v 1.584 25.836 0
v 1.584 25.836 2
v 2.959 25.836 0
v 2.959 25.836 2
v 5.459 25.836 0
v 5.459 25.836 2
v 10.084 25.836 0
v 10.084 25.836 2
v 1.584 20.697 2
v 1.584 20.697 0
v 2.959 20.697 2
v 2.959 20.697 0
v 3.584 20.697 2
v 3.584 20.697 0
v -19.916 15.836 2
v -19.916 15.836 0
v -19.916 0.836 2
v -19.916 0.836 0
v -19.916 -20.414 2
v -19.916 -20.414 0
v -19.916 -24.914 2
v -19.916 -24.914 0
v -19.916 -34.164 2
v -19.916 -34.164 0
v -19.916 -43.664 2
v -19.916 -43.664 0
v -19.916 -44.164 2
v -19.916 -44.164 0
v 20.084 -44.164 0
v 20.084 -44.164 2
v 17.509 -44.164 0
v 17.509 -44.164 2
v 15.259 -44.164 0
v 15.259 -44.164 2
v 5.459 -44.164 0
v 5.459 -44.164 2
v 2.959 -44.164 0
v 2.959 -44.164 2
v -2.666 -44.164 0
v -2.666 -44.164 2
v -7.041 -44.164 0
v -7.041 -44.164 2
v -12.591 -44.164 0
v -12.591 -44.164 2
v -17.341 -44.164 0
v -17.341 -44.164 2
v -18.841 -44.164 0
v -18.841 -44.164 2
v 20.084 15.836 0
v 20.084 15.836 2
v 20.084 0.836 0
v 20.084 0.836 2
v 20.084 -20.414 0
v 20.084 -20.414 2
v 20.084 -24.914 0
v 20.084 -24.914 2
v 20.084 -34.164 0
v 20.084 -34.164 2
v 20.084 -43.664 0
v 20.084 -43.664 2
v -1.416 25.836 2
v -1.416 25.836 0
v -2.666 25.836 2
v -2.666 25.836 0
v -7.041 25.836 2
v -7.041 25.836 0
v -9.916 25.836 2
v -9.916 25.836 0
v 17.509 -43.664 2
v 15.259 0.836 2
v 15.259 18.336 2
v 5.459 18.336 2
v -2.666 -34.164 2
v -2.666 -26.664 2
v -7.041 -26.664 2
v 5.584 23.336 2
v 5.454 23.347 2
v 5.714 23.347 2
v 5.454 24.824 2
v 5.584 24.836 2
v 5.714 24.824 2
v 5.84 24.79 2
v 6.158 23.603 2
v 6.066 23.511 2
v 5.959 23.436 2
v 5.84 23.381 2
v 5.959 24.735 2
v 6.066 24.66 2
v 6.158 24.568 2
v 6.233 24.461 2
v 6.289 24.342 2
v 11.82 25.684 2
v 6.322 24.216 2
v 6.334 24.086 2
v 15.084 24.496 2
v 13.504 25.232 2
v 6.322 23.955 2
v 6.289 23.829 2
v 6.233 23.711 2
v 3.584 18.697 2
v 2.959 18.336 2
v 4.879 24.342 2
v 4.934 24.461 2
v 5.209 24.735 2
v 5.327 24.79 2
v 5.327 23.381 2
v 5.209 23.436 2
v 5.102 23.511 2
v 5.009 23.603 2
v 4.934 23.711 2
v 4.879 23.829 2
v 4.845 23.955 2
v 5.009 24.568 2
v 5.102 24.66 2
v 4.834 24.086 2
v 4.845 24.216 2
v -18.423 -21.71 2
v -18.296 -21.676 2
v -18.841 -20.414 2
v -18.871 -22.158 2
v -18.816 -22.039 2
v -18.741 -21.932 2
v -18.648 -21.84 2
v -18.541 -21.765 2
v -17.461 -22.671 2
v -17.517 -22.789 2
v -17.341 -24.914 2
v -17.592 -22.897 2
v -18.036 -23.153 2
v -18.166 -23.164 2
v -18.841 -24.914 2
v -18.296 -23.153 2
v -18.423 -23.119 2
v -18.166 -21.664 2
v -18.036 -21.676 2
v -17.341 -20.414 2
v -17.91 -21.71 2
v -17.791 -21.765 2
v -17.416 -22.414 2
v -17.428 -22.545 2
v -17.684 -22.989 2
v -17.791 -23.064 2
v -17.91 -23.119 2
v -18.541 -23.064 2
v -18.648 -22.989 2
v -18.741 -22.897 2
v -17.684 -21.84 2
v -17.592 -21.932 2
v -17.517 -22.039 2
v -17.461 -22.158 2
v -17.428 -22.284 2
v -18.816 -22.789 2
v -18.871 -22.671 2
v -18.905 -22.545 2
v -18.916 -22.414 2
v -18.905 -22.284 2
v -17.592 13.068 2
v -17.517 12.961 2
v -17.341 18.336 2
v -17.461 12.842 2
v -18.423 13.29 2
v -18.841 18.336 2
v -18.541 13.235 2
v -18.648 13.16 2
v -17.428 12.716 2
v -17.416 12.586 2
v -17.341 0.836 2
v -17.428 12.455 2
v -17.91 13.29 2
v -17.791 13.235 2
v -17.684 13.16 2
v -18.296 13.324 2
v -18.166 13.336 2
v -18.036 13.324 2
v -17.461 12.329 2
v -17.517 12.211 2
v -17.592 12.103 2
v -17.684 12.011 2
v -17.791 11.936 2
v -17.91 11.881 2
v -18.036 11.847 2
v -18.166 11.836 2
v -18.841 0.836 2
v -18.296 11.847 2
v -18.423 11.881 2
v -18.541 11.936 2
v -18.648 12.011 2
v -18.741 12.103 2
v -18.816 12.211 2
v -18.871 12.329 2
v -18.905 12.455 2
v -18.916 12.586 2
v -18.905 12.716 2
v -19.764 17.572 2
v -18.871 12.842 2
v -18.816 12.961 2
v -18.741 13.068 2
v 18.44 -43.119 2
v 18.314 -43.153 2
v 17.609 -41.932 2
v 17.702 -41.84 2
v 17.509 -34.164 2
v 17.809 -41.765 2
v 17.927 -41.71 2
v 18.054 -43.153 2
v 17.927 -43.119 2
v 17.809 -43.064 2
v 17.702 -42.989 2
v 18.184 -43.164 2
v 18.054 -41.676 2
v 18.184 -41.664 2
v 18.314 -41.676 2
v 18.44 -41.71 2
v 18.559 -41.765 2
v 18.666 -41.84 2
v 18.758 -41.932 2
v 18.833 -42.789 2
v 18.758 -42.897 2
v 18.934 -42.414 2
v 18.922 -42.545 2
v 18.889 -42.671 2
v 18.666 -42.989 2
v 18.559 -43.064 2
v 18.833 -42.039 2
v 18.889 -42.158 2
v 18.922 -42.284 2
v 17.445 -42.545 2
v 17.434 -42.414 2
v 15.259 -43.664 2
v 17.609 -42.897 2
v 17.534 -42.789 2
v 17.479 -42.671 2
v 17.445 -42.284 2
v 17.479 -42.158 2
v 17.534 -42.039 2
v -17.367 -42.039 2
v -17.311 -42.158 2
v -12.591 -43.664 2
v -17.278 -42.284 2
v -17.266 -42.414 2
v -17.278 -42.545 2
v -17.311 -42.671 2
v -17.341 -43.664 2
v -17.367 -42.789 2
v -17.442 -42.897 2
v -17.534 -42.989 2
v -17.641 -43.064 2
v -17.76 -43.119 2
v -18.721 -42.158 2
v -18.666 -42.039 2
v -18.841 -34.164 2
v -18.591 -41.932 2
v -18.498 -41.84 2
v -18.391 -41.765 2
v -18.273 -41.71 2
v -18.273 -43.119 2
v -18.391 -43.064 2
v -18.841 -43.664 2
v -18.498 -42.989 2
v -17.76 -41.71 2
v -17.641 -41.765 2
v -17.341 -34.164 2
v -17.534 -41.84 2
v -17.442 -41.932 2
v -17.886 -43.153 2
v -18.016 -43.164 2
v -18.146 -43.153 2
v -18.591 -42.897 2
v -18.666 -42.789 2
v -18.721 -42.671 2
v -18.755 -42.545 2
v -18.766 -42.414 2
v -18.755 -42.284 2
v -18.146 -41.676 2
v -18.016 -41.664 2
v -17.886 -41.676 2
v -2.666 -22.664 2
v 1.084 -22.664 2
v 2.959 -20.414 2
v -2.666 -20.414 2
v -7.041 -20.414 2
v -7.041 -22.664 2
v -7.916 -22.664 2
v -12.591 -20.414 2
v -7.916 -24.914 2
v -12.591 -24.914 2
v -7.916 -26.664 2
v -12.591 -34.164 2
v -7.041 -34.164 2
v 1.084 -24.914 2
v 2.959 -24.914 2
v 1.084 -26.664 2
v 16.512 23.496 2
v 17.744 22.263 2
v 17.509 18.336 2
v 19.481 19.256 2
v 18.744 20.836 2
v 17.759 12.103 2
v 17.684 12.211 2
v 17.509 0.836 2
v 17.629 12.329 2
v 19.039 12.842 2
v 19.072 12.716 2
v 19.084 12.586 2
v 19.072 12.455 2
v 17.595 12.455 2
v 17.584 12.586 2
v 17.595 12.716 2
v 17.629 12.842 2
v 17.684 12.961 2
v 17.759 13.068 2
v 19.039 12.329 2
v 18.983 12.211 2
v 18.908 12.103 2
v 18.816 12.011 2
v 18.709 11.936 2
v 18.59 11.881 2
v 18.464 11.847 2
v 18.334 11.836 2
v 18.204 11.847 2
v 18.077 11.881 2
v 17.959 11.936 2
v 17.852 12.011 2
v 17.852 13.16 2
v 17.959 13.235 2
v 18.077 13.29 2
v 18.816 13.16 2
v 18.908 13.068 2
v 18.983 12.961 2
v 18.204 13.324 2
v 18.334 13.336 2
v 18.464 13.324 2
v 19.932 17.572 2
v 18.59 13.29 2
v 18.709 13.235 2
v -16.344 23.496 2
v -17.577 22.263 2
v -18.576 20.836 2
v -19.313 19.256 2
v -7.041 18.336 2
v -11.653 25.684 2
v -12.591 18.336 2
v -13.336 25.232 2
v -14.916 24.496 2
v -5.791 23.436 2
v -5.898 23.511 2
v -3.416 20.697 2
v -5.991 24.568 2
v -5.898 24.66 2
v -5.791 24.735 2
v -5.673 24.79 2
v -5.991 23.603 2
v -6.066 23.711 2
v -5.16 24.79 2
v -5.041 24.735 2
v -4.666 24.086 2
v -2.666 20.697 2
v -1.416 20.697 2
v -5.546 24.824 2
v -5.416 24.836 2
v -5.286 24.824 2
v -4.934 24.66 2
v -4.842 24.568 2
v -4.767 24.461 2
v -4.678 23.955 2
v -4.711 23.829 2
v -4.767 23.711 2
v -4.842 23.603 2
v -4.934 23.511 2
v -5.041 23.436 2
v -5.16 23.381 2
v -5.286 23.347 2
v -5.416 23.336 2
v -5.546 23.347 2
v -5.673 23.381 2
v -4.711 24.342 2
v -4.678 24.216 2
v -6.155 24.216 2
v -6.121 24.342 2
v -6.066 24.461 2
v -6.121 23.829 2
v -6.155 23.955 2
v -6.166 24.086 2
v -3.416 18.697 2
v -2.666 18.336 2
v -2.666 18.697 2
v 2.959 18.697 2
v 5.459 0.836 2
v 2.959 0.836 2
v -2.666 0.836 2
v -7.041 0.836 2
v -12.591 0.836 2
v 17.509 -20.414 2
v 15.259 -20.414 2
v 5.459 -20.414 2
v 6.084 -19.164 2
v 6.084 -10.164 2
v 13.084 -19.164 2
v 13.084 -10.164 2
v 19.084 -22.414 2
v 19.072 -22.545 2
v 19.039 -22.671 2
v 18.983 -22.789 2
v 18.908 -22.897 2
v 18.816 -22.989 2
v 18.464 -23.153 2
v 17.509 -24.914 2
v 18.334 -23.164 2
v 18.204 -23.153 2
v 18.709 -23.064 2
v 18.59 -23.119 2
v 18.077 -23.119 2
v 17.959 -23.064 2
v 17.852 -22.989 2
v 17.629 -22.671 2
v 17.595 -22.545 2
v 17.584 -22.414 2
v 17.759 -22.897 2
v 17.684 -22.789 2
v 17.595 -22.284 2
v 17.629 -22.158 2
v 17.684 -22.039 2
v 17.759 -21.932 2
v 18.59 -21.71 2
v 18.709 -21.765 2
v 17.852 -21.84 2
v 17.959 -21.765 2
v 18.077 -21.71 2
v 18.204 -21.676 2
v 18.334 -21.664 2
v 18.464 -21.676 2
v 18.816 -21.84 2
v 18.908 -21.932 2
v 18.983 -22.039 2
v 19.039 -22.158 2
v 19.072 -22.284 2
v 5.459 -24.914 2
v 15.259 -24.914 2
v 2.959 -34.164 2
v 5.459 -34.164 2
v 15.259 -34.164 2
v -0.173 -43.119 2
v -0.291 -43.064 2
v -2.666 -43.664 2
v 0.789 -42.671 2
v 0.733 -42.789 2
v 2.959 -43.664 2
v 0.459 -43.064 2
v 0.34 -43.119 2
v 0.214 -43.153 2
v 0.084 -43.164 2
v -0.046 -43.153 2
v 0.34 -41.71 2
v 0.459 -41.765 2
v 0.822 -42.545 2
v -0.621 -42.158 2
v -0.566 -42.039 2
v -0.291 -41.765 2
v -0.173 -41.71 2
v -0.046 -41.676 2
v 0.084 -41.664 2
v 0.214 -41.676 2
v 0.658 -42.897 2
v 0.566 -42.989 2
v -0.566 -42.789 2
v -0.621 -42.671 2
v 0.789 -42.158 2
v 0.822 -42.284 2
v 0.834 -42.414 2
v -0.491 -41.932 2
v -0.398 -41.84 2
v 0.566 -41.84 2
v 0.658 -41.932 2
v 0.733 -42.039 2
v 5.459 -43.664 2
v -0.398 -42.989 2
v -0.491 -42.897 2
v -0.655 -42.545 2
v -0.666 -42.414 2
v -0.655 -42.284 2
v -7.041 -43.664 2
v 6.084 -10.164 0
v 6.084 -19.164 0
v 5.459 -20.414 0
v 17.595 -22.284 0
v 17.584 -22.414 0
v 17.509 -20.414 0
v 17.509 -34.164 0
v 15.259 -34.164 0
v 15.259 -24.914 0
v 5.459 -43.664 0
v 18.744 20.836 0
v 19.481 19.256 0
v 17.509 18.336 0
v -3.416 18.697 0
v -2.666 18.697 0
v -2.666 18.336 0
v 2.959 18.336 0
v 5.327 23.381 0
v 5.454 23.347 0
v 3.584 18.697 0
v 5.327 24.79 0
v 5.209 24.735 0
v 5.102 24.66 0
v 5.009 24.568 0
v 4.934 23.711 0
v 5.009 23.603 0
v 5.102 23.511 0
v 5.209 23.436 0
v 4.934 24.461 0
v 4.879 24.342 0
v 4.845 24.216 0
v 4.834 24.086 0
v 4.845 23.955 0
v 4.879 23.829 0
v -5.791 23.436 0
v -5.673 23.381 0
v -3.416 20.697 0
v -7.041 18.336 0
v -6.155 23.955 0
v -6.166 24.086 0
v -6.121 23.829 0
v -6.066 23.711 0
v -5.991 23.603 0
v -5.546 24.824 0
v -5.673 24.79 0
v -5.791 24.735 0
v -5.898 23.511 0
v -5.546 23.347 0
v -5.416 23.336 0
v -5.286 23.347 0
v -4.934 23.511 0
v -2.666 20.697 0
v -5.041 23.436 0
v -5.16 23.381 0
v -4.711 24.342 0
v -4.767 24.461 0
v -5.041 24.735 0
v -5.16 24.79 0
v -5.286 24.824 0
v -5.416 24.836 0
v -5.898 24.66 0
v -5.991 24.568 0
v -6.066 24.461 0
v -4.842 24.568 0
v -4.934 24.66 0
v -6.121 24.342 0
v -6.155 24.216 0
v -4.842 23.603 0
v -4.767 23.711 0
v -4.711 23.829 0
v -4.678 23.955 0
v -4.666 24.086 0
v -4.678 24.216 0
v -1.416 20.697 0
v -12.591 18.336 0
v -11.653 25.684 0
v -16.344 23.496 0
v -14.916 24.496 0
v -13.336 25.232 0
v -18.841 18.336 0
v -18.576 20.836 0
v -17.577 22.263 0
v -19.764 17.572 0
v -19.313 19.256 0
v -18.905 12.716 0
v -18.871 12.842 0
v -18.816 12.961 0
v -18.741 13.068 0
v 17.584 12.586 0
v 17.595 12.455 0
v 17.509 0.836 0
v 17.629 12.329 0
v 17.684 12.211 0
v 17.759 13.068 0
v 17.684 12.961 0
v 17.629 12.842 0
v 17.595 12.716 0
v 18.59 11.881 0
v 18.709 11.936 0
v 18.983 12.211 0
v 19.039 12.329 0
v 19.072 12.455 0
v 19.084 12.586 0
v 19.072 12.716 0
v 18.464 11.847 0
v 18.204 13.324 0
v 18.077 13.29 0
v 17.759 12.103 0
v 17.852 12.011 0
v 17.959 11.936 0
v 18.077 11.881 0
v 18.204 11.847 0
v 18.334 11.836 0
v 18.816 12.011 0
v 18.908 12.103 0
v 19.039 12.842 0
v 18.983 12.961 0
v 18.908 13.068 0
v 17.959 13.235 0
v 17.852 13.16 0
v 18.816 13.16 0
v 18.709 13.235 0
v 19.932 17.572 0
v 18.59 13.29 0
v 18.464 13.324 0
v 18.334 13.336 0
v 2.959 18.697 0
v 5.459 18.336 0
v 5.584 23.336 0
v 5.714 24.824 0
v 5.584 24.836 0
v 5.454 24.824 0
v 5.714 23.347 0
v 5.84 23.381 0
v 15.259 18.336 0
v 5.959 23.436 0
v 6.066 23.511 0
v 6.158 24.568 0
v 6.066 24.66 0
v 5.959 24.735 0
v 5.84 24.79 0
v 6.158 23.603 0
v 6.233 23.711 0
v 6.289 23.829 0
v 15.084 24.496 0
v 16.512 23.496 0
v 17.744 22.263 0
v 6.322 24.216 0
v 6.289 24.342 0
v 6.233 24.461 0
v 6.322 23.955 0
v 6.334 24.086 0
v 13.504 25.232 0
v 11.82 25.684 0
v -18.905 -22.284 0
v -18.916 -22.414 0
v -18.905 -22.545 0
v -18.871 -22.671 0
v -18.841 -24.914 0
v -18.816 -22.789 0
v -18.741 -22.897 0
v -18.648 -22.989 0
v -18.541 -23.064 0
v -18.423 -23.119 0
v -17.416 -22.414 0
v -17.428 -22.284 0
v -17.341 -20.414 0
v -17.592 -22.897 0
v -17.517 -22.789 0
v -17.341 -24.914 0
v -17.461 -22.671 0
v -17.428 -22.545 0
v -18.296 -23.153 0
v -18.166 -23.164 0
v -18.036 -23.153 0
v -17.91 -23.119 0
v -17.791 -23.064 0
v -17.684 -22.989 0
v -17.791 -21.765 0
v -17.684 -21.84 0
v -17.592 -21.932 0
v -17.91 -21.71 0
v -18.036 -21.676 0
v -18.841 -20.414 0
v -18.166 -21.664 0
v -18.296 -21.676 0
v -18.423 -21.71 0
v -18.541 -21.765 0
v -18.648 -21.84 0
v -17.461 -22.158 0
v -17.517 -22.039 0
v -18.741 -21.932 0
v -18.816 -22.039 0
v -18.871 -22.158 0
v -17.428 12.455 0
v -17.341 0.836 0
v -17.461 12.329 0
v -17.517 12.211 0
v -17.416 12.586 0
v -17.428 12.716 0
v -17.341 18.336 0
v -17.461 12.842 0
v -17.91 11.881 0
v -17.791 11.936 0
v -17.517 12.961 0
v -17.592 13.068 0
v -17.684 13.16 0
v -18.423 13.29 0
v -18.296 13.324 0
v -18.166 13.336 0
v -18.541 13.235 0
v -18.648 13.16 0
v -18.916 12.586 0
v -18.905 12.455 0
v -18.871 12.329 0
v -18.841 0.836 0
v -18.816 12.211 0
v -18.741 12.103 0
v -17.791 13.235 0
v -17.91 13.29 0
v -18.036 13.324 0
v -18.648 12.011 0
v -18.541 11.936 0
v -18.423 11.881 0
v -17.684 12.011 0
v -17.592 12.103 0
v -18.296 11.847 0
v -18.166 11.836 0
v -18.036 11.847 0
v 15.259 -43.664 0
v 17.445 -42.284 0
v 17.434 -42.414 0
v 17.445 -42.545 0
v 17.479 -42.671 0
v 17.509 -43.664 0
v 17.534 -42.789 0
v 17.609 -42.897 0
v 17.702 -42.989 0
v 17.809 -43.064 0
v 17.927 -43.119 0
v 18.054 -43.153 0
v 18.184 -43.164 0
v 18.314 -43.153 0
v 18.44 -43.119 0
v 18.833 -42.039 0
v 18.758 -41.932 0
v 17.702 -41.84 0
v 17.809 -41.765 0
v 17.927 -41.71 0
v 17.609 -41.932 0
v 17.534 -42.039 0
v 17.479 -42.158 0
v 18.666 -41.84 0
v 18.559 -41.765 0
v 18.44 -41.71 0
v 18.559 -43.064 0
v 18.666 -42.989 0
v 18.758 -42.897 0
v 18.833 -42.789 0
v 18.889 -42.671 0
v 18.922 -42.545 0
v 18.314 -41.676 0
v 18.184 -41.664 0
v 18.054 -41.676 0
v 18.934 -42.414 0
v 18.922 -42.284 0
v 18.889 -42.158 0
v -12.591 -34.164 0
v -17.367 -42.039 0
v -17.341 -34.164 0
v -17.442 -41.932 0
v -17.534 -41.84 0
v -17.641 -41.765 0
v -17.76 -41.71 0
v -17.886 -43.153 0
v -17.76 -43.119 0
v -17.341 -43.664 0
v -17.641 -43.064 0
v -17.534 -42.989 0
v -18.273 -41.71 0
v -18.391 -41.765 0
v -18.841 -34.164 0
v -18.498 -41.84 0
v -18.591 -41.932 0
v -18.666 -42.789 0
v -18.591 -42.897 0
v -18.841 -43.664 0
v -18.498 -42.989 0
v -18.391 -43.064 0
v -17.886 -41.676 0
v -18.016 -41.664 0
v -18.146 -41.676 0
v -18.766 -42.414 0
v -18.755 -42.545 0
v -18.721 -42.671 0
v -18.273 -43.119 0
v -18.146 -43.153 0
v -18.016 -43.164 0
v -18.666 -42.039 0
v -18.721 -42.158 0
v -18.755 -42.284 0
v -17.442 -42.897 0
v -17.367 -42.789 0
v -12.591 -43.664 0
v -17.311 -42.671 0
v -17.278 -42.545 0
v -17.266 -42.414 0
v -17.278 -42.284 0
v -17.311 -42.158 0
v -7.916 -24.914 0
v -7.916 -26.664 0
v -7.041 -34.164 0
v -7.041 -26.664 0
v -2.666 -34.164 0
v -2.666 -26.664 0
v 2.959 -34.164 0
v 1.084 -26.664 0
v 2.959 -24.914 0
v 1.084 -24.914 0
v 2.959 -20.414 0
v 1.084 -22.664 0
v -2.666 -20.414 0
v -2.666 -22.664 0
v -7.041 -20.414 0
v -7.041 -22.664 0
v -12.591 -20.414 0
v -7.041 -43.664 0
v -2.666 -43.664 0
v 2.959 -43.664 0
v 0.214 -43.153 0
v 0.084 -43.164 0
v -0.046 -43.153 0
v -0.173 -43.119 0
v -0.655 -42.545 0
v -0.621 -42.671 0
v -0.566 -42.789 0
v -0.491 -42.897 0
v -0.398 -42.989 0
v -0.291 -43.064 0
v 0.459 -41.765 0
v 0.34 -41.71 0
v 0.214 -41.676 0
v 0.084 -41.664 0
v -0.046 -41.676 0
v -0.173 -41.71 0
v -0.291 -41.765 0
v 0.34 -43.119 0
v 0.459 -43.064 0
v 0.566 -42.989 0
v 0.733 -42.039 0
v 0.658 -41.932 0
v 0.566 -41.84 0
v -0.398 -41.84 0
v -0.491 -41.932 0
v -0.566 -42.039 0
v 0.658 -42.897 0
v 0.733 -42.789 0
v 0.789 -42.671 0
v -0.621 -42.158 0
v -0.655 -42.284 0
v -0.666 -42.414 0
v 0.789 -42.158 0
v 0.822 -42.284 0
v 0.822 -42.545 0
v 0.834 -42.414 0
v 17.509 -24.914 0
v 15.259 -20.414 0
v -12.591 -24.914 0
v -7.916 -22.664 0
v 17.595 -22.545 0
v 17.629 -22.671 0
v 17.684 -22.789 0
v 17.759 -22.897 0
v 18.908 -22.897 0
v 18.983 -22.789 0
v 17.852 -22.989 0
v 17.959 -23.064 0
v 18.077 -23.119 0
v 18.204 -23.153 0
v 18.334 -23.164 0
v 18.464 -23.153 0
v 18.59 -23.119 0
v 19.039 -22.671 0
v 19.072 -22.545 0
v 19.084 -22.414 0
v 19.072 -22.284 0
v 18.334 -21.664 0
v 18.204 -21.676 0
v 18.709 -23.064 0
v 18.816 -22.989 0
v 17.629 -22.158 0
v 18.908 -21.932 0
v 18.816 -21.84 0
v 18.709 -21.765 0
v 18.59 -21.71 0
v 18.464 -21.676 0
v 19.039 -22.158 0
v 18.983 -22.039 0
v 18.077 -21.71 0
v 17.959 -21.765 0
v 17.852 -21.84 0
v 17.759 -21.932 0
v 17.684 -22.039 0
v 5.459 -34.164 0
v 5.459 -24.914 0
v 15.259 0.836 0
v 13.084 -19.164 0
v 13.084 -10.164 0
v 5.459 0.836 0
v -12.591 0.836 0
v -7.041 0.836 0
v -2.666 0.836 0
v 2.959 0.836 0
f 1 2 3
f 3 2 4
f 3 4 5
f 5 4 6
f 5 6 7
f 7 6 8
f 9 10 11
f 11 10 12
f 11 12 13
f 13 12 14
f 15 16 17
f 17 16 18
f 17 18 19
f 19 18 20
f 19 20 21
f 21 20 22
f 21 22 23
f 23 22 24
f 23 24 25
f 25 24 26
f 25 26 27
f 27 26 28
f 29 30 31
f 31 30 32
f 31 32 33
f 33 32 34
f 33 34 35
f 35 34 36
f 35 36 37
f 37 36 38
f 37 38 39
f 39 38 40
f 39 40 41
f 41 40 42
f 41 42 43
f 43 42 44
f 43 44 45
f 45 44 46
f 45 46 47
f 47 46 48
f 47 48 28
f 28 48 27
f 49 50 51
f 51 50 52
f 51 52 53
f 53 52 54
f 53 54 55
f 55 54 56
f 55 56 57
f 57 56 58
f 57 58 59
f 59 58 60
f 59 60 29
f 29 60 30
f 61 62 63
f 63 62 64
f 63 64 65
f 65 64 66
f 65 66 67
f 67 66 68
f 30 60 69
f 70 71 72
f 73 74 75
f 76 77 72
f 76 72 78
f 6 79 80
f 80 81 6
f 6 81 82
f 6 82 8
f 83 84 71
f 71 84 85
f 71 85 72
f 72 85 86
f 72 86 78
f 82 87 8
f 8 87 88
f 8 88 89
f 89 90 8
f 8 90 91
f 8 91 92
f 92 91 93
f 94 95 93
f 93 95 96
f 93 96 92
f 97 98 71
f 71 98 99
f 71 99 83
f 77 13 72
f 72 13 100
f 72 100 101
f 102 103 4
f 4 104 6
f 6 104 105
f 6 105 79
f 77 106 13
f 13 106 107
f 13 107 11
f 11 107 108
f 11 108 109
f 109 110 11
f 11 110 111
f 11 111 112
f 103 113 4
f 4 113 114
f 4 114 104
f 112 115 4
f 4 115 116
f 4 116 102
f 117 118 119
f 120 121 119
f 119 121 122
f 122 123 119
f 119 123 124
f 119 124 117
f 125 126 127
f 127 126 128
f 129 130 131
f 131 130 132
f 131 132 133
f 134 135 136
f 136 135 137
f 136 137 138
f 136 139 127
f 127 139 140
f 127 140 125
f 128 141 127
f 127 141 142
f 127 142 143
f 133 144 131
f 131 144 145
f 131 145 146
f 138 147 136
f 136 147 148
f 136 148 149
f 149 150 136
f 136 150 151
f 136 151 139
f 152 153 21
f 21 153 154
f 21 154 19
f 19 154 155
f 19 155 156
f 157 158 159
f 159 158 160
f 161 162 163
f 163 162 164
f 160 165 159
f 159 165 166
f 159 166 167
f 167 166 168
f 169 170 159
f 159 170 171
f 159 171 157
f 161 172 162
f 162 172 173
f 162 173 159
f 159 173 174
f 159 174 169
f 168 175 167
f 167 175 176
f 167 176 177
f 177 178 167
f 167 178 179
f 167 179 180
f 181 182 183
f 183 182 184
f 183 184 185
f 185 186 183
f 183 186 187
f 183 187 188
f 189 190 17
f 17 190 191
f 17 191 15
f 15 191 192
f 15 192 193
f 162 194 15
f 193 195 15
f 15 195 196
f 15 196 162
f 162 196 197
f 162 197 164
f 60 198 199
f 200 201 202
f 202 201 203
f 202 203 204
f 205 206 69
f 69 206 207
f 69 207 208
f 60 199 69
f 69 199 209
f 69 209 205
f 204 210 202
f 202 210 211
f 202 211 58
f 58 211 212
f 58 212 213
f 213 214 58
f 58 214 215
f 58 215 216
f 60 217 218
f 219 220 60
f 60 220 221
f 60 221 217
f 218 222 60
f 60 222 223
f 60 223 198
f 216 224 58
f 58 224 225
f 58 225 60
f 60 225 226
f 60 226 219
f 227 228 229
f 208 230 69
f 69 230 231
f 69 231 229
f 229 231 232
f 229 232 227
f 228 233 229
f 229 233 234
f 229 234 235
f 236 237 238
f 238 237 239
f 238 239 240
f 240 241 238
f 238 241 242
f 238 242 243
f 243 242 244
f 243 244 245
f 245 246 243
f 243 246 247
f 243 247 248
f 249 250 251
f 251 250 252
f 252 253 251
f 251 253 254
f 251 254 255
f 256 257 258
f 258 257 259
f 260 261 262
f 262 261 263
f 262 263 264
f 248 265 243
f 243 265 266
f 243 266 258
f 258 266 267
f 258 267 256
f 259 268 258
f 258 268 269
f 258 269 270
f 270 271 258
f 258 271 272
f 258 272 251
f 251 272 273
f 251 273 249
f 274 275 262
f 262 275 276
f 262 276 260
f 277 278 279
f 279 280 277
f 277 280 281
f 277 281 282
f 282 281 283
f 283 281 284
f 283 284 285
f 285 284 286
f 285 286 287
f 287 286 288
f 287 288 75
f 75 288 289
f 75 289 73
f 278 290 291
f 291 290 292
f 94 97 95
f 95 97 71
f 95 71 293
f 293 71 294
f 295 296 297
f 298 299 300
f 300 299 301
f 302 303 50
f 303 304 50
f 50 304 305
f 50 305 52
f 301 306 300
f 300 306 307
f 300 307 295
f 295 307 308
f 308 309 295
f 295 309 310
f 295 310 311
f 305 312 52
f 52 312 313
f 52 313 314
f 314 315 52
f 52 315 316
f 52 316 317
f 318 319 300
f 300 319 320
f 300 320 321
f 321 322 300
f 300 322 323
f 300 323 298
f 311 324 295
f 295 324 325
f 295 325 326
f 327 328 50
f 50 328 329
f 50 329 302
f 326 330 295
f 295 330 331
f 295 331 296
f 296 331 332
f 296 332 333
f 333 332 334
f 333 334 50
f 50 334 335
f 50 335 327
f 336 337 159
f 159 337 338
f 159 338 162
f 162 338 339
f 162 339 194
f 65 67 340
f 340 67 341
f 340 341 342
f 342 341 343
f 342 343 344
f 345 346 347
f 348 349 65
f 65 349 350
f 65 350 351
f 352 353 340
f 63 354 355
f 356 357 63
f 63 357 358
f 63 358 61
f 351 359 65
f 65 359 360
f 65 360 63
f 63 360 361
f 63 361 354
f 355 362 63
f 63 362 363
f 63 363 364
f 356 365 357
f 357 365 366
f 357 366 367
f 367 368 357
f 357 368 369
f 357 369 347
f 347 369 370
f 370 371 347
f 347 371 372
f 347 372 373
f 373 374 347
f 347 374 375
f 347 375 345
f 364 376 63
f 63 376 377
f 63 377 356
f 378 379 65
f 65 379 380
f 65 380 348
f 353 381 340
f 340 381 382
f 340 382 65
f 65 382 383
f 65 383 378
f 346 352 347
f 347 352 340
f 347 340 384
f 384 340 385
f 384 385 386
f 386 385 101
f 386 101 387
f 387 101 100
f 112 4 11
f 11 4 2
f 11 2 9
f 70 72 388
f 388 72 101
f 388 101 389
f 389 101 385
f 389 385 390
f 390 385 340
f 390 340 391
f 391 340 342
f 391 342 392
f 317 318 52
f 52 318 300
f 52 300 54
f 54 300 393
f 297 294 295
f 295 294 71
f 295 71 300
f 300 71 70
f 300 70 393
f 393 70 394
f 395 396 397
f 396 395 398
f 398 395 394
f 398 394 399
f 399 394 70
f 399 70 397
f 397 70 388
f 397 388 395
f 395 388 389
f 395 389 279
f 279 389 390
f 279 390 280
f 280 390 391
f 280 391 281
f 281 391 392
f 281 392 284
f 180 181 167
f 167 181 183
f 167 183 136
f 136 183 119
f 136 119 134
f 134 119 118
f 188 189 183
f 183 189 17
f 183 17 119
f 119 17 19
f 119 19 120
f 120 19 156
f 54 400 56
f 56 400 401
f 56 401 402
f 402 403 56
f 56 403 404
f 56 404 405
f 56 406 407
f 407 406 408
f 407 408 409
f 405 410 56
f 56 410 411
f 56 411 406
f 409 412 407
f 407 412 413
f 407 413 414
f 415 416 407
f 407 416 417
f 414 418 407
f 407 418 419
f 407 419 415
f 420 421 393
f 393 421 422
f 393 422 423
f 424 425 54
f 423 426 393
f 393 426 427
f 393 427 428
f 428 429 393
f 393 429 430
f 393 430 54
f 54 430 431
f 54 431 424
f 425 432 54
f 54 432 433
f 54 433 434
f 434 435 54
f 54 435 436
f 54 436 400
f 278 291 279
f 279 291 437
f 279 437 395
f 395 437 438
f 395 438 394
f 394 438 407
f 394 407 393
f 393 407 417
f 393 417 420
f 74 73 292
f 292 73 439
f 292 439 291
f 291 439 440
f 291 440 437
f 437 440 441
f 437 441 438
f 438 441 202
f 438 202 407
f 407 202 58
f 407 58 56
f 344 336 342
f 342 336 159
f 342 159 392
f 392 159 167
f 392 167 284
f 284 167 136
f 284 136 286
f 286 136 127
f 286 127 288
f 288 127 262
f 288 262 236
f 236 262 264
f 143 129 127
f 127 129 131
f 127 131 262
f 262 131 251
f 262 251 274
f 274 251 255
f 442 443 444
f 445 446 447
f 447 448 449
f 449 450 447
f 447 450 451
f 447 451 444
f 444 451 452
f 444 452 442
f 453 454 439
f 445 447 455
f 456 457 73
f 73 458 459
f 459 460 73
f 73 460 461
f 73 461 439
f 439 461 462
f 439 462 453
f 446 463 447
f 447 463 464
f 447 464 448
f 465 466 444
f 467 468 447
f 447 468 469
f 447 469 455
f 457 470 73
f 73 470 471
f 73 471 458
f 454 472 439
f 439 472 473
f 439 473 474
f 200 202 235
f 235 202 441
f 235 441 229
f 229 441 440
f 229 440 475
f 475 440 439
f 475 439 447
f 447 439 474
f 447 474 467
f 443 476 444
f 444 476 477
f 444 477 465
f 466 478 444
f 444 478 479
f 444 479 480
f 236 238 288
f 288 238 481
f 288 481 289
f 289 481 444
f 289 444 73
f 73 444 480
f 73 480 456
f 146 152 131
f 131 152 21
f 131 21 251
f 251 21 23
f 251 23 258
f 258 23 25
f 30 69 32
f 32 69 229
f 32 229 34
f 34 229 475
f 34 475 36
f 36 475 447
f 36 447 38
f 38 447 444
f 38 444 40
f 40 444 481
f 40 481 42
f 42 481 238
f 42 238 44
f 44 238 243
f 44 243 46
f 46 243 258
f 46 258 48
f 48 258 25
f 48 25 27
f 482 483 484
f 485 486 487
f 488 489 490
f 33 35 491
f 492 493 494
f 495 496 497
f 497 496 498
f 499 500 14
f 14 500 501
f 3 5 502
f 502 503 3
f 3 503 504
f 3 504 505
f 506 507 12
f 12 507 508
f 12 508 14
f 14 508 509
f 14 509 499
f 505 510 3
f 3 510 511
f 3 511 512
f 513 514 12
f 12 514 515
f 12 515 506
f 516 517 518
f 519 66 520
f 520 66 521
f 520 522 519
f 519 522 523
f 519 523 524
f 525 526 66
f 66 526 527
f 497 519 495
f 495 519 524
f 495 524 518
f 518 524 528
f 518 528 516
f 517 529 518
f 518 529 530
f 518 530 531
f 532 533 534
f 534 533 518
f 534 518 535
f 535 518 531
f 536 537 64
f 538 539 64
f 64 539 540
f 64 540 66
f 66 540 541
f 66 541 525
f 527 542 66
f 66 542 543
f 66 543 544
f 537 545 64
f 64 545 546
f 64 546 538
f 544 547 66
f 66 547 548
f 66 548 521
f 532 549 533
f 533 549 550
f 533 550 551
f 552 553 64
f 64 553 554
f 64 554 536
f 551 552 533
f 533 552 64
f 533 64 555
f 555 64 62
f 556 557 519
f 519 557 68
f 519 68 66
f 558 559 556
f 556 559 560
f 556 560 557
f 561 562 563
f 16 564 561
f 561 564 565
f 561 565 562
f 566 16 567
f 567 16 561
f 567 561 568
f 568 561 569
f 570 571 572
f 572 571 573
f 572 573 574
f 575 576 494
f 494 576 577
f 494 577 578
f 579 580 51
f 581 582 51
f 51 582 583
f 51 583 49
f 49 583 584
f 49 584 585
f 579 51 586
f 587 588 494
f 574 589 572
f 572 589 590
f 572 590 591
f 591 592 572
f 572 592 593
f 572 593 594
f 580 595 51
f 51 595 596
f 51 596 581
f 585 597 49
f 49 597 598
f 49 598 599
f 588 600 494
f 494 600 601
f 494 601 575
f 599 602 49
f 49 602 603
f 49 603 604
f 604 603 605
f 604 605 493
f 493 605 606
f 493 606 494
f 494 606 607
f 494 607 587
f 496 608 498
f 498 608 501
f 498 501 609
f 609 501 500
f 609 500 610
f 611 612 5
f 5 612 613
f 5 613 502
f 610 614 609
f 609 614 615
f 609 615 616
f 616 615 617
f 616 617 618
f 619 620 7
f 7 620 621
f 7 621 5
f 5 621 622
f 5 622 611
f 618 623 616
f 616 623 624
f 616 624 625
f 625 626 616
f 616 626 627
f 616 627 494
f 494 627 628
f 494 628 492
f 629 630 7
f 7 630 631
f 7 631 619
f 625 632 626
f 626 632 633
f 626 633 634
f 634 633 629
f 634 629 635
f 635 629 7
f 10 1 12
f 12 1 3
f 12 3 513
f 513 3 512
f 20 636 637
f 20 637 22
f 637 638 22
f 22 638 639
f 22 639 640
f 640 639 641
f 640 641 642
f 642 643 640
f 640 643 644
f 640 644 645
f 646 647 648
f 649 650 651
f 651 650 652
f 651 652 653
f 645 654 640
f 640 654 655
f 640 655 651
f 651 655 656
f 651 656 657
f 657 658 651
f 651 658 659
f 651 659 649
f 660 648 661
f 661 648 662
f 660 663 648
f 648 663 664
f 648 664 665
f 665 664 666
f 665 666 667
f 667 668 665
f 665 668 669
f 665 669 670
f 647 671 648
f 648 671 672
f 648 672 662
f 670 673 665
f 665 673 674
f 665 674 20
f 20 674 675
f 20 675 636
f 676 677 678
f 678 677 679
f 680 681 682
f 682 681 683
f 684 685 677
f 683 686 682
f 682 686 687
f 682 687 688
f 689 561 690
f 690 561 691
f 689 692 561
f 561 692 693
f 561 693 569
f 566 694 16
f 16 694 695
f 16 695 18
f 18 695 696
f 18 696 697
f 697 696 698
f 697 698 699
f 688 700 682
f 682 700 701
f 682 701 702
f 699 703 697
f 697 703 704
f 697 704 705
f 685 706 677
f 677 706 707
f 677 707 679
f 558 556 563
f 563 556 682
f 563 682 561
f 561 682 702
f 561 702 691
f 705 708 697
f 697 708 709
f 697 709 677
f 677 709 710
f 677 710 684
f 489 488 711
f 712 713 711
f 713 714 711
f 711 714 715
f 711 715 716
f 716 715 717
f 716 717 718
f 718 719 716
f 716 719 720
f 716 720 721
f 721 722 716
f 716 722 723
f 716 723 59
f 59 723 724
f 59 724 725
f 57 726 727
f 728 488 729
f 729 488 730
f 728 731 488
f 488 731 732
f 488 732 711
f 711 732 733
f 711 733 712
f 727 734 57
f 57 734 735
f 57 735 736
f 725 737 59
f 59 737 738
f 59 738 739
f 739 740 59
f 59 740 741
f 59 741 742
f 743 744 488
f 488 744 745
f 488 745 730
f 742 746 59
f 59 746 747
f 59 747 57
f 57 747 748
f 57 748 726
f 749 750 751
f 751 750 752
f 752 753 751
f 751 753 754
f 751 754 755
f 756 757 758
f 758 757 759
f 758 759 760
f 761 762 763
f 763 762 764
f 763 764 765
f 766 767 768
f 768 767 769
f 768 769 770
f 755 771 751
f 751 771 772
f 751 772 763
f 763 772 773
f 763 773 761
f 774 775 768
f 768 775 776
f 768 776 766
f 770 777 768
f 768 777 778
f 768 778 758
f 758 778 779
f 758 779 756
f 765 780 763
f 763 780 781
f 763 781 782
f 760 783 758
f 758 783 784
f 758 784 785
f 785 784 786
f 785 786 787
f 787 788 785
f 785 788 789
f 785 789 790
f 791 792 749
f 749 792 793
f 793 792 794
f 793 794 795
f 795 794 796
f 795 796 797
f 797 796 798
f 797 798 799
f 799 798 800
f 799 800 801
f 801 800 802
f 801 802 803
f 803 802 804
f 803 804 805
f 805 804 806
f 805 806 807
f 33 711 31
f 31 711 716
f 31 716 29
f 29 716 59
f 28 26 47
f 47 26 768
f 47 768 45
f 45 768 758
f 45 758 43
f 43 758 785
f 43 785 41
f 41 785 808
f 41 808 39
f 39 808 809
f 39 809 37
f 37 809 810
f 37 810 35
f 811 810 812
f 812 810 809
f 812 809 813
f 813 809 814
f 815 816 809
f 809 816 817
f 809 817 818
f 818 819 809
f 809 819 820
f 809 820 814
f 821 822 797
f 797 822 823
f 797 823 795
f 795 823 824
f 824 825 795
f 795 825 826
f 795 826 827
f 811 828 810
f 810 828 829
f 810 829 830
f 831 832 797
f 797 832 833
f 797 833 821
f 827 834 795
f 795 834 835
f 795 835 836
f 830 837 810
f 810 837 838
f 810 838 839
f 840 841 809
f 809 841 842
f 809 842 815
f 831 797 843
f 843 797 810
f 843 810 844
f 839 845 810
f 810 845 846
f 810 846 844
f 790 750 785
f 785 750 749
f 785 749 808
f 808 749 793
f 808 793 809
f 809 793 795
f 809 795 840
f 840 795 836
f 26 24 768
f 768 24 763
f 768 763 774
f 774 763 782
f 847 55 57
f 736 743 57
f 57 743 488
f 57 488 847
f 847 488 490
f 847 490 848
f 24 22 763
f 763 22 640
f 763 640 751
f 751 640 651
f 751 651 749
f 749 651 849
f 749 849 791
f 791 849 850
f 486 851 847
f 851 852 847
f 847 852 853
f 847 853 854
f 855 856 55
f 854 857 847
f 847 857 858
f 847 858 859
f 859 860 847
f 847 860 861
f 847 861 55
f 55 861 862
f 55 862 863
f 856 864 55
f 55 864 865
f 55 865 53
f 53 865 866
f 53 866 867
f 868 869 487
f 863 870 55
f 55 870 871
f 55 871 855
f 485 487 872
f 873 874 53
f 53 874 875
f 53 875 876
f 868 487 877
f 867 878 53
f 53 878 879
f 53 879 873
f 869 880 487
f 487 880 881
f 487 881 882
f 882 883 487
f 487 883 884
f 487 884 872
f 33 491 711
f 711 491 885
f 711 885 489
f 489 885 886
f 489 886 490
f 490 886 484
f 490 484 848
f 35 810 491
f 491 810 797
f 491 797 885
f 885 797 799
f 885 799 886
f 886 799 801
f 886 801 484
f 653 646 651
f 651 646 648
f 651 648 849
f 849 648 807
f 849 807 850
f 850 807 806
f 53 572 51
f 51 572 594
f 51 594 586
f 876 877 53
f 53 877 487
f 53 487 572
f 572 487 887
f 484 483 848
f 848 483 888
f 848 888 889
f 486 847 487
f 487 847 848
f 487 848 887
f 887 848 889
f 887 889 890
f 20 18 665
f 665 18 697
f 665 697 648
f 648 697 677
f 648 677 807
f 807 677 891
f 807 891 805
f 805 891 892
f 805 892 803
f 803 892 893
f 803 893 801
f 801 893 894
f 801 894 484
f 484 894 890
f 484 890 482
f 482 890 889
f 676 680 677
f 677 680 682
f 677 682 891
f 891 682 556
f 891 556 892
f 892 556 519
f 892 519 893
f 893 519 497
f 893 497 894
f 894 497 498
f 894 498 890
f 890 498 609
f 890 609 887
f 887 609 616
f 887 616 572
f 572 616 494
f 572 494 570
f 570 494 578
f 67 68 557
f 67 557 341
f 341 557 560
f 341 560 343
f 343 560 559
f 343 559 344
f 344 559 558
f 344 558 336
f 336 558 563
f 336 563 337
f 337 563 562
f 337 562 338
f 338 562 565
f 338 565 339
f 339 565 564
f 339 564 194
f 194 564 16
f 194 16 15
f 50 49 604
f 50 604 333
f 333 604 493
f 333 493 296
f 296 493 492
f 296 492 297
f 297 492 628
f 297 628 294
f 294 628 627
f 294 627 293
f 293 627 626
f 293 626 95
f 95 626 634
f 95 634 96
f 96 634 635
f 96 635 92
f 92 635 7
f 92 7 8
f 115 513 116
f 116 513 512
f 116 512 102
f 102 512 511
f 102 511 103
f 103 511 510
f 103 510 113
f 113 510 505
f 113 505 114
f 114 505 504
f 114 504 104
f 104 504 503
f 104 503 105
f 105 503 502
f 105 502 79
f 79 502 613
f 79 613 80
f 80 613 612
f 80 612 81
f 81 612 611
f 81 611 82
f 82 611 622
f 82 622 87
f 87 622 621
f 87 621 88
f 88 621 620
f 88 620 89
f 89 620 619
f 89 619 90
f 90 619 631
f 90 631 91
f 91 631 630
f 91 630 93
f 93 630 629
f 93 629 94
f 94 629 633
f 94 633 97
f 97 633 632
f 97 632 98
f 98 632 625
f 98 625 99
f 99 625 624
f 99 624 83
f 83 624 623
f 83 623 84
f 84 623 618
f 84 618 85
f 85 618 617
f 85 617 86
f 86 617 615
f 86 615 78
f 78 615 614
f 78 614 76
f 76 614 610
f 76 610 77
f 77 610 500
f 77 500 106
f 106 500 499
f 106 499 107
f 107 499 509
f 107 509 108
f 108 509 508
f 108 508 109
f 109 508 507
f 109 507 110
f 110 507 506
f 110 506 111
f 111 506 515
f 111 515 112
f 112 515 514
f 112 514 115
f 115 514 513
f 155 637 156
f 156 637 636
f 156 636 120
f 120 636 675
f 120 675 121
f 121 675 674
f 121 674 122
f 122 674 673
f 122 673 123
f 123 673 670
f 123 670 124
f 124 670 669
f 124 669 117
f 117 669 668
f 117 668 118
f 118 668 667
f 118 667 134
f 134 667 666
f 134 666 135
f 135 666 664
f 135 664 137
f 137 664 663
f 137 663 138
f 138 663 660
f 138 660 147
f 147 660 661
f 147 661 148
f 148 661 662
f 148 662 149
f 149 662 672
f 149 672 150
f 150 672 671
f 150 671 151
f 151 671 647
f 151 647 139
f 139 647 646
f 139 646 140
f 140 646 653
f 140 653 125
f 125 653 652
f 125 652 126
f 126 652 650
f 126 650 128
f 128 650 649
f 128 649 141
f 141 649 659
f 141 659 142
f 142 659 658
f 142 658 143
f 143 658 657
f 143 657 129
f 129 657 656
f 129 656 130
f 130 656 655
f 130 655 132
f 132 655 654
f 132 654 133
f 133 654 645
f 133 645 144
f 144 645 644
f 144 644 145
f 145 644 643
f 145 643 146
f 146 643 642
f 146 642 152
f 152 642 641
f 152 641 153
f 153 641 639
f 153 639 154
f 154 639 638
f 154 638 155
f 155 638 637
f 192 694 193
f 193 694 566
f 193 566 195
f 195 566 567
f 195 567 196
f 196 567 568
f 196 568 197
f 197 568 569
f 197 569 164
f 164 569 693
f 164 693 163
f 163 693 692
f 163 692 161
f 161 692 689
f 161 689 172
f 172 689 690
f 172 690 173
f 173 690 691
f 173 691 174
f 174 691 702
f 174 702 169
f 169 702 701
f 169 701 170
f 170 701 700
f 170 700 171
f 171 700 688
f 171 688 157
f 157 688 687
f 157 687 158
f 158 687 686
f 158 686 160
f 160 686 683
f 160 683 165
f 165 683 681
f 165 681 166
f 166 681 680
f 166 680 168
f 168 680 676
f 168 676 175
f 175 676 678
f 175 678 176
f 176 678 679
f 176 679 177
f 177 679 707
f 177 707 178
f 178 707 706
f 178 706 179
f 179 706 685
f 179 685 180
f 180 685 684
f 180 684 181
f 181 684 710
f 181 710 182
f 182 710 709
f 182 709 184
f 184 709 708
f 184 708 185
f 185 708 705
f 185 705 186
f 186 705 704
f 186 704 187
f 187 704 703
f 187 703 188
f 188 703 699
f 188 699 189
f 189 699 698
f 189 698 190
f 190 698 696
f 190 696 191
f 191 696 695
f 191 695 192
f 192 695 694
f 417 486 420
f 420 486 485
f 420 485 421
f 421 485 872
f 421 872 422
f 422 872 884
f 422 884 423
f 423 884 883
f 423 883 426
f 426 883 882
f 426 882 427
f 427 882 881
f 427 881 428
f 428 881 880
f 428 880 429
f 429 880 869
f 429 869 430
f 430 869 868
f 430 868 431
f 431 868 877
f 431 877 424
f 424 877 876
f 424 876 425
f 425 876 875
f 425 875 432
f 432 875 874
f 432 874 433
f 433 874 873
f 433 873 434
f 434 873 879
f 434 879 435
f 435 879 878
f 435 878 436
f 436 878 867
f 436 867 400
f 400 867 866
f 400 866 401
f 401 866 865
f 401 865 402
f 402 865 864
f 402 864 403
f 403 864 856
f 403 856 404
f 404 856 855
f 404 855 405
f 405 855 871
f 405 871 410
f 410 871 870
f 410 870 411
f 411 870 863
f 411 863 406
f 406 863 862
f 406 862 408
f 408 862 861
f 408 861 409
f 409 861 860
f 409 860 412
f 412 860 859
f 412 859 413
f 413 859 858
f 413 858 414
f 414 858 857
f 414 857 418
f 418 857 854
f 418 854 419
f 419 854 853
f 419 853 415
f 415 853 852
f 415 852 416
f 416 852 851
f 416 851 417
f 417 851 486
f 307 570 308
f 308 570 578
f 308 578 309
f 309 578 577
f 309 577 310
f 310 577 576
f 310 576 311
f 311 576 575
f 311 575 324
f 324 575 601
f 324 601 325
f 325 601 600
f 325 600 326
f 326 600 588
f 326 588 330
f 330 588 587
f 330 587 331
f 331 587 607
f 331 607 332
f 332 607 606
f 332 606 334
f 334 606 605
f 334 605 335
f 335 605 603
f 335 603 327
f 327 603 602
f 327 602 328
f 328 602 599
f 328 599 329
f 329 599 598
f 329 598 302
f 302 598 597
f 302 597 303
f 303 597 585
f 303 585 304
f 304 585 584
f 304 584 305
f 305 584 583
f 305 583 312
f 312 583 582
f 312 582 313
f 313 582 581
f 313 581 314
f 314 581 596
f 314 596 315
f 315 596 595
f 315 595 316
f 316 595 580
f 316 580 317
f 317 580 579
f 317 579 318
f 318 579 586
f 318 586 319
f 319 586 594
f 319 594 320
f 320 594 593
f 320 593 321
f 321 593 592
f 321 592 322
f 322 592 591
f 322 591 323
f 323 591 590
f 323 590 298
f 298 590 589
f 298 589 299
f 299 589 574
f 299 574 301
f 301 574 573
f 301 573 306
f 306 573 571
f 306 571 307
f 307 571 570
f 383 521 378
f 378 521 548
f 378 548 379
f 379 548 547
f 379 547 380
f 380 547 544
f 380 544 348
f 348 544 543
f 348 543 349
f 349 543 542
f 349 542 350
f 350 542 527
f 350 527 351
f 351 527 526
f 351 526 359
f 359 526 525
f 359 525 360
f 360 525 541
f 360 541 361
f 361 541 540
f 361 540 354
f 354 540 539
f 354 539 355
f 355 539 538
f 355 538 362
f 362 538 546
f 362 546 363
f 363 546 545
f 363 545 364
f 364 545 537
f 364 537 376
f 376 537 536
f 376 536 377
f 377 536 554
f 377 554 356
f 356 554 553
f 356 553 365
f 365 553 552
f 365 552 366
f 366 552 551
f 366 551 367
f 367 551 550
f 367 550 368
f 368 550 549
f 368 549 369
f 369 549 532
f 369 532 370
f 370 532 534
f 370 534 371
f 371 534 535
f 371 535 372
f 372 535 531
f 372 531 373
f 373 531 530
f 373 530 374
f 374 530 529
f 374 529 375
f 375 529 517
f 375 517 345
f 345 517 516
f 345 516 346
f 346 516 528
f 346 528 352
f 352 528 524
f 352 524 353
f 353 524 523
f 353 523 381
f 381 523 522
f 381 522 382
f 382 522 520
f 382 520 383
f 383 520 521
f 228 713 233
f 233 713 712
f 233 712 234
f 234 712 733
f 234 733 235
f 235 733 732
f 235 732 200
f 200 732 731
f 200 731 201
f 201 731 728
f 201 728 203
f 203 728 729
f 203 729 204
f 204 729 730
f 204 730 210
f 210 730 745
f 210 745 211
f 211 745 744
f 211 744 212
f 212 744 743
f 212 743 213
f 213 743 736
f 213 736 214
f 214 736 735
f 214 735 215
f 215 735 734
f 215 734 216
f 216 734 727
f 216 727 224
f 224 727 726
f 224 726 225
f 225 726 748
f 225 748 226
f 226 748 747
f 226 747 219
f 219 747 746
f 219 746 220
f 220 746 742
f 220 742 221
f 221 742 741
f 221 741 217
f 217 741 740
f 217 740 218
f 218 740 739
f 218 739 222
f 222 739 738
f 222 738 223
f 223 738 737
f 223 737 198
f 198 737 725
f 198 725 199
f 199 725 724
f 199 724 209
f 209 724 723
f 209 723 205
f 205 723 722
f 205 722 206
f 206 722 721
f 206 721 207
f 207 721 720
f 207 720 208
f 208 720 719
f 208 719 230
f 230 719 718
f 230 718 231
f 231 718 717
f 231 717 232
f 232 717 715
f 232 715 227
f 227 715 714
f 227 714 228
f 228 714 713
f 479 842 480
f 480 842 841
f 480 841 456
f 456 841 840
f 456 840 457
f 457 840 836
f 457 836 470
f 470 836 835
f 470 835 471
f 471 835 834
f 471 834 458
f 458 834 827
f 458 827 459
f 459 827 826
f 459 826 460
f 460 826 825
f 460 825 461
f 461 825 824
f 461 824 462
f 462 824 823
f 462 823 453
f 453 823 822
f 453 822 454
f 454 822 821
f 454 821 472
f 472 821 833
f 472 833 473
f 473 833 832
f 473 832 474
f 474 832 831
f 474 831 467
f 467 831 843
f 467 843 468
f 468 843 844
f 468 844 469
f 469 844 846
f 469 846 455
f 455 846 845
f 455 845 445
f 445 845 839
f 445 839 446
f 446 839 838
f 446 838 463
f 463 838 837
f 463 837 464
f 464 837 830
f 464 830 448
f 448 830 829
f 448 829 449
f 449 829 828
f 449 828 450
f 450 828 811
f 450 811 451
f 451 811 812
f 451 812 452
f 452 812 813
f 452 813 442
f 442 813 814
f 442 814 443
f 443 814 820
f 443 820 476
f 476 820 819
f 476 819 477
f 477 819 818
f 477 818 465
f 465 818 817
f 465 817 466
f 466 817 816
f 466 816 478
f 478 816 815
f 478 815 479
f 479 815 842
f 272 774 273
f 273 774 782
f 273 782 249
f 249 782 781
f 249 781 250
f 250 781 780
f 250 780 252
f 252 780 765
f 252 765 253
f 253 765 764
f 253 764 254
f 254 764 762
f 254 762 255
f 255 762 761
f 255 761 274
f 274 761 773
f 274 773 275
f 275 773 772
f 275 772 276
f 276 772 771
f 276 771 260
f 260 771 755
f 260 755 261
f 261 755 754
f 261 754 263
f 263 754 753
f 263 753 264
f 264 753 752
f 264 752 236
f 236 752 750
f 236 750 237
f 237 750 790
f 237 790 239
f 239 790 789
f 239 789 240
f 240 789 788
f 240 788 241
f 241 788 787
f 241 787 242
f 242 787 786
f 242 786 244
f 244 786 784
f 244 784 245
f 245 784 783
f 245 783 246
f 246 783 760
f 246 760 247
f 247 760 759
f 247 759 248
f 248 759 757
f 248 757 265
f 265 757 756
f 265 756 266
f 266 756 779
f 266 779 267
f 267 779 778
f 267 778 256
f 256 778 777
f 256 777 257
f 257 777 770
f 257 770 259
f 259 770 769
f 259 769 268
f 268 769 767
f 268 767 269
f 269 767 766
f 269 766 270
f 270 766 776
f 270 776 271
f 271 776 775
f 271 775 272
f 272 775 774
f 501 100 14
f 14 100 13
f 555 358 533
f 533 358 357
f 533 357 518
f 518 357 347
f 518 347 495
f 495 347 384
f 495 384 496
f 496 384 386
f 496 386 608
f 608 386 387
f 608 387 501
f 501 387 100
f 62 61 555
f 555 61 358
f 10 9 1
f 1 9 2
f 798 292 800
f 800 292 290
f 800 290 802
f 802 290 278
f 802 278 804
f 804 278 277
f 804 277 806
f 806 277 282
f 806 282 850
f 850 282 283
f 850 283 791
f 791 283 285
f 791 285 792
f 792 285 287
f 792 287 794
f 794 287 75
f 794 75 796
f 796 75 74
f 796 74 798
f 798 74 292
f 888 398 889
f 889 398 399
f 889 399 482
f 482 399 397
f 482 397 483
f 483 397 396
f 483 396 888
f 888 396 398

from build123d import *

# Parameters (mm, degrees)
CROQUIS1_W              = 40
CROQUIS1_H              = 70
SALIENTE_EXTRUIR1_DEPTH = 2
REDONDEO1_R             = 10
CORTAR_EXTRUIR1_REACH   = 50.558
CROQUIS2_R              = 0.75
CORTAR_EXTRUIR2_REACH   = 50.558
CROQUIS3_W              = 7
CROQUIS3_H              = 2
CORTAR_EXTRUIR3_REACH   = 50.558
CROQUIS4_W              = 3
CROQUIS4_H              = 5.138146931
CROQUIS4_W_2            = 7
CROQUIS4_H_2            = 9
CROQUIS4_W_3            = 9
CROQUIS4_H_3            = 4


with BuildPart() as part:
    # Croquis1 → Saliente-Extruir1 (new body)
    with BuildSketch(Plane.XY):
        with Locations((0.083817915, -9.164456233)):
            Rectangle(CROQUIS1_W, CROQUIS1_H)
    extrude(amount=SALIENTE_EXTRUIR1_DEPTH)

    # Redondeo1
    redondeo1_edges = [part.edges().sort_by_distance(p)[0] for p in [
        (-19.916182085, 25.835543767, 1),
        (20.083817915, 25.835543767, 1),
    ]]
    fillet(redondeo1_edges, radius=REDONDEO1_R)

    # Croquis2 → Cortar-Extruir1 (cut, up to next)
    with BuildSketch(Plane(origin=(0, 0, 0), x_dir=(-1, 0, 0), z_dir=(0, 0, -1)), mode=Mode.PRIVATE) as cortar_extruir1_sk1:
        with Locations((-5.583817915, 24.085543767)):
            Circle(CROQUIS2_R)
    cortar_extruir1_tool1 = extrude(cortar_extruir1_sk1.sketch, amount=-CORTAR_EXTRUIR1_REACH, mode=Mode.PRIVATE) & part.part
    # Croquis2 → Cortar-Extruir1 (cut, up to next)
    with BuildSketch(Plane(origin=(0, 0, 0), x_dir=(-1, 0, 0), z_dir=(0, 0, -1)), mode=Mode.PRIVATE) as cortar_extruir1_sk2:
        with Locations((5.416182085, 24.085543767)):
            Circle(CROQUIS2_R)
    cortar_extruir1_tool2 = extrude(cortar_extruir1_sk2.sketch, amount=-CORTAR_EXTRUIR1_REACH, mode=Mode.PRIVATE) & part.part
    # Croquis2 → Cortar-Extruir1 (cut, up to next)
    with BuildSketch(Plane(origin=(0, 0, 0), x_dir=(-1, 0, 0), z_dir=(0, 0, -1)), mode=Mode.PRIVATE) as cortar_extruir1_sk3:
        with Locations((-18.183817915, -42.414456233)):
            Circle(CROQUIS2_R)
    cortar_extruir1_tool3 = extrude(cortar_extruir1_sk3.sketch, amount=-CORTAR_EXTRUIR1_REACH, mode=Mode.PRIVATE) & part.part
    # Croquis2 → Cortar-Extruir1 (cut, up to next)
    with BuildSketch(Plane(origin=(0, 0, 0), x_dir=(-1, 0, 0), z_dir=(0, 0, -1)), mode=Mode.PRIVATE) as cortar_extruir1_sk4:
        with Locations((-0.083817915, -42.414456233)):
            Circle(CROQUIS2_R)
    cortar_extruir1_tool4 = extrude(cortar_extruir1_sk4.sketch, amount=-CORTAR_EXTRUIR1_REACH, mode=Mode.PRIVATE) & part.part
    # Croquis2 → Cortar-Extruir1 (cut, up to next)
    with BuildSketch(Plane(origin=(0, 0, 0), x_dir=(-1, 0, 0), z_dir=(0, 0, -1)), mode=Mode.PRIVATE) as cortar_extruir1_sk5:
        with Locations((18.016182085, -42.414456233)):
            Circle(CROQUIS2_R)
    cortar_extruir1_tool5 = extrude(cortar_extruir1_sk5.sketch, amount=-CORTAR_EXTRUIR1_REACH, mode=Mode.PRIVATE) & part.part
    # Croquis2 → Cortar-Extruir1 (cut, up to next)
    with BuildSketch(Plane(origin=(0, 0, 0), x_dir=(-1, 0, 0), z_dir=(0, 0, -1)), mode=Mode.PRIVATE) as cortar_extruir1_sk6:
        with Locations((-18.333817915, 12.585543767)):
            Circle(CROQUIS2_R)
    cortar_extruir1_tool6 = extrude(cortar_extruir1_sk6.sketch, amount=-CORTAR_EXTRUIR1_REACH, mode=Mode.PRIVATE) & part.part
    # Croquis2 → Cortar-Extruir1 (cut, up to next)
    with BuildSketch(Plane(origin=(0, 0, 0), x_dir=(-1, 0, 0), z_dir=(0, 0, -1)), mode=Mode.PRIVATE) as cortar_extruir1_sk7:
        with Locations((-18.333817915, -22.414456233)):
            Circle(CROQUIS2_R)
    cortar_extruir1_tool7 = extrude(cortar_extruir1_sk7.sketch, amount=-CORTAR_EXTRUIR1_REACH, mode=Mode.PRIVATE) & part.part
    # Croquis2 → Cortar-Extruir1 (cut, up to next)
    with BuildSketch(Plane(origin=(0, 0, 0), x_dir=(-1, 0, 0), z_dir=(0, 0, -1)), mode=Mode.PRIVATE) as cortar_extruir1_sk8:
        with Locations((18.166182085, 12.585543767)):
            Circle(CROQUIS2_R)
    cortar_extruir1_tool8 = extrude(cortar_extruir1_sk8.sketch, amount=-CORTAR_EXTRUIR1_REACH, mode=Mode.PRIVATE) & part.part
    # Croquis2 → Cortar-Extruir1 (cut, up to next)
    with BuildSketch(Plane(origin=(0, 0, 0), x_dir=(-1, 0, 0), z_dir=(0, 0, -1)), mode=Mode.PRIVATE) as cortar_extruir1_sk9:
        with Locations((18.166182085, -22.414456233)):
            Circle(CROQUIS2_R)
    cortar_extruir1_tool9 = extrude(cortar_extruir1_sk9.sketch, amount=-CORTAR_EXTRUIR1_REACH, mode=Mode.PRIVATE) & part.part
    add(cortar_extruir1_tool1.solids().sort_by_distance((5.583818, 24.085544, 0))[0], mode=Mode.SUBTRACT)
    add(cortar_extruir1_tool2.solids().sort_by_distance((-5.416182, 24.085544, 0))[0], mode=Mode.SUBTRACT)
    add(cortar_extruir1_tool3.solids().sort_by_distance((18.183818, -42.414456, 0))[0], mode=Mode.SUBTRACT)
    add(cortar_extruir1_tool4.solids().sort_by_distance((0.083818, -42.414456, 0))[0], mode=Mode.SUBTRACT)
    add(cortar_extruir1_tool5.solids().sort_by_distance((-18.016182, -42.414456, 0))[0], mode=Mode.SUBTRACT)
    add(cortar_extruir1_tool6.solids().sort_by_distance((18.333818, 12.585544, 0))[0], mode=Mode.SUBTRACT)
    add(cortar_extruir1_tool7.solids().sort_by_distance((18.333818, -22.414456, 0))[0], mode=Mode.SUBTRACT)
    add(cortar_extruir1_tool8.solids().sort_by_distance((-18.166182, 12.585544, 0))[0], mode=Mode.SUBTRACT)
    add(cortar_extruir1_tool9.solids().sort_by_distance((-18.166182, -22.414456, 0))[0], mode=Mode.SUBTRACT)

    # Croquis3 → Cortar-Extruir2 (cut, up to next)
    with BuildSketch(Plane(origin=(0, 0, 0), x_dir=(-1, 0, 0), z_dir=(0, 0, -1)), mode=Mode.PRIVATE) as cortar_extruir2_sk1:
        with Locations((-0.083817915, 19.697396836)):
            Rectangle(CROQUIS3_W, CROQUIS3_H)
    cortar_extruir2_tool1 = extrude(cortar_extruir2_sk1.sketch, amount=-CORTAR_EXTRUIR2_REACH, mode=Mode.PRIVATE) & part.part
    add(cortar_extruir2_tool1.solids().sort_by_distance((0.083818, 19.697397, 0))[0], mode=Mode.SUBTRACT)

    # Croquis4 → Cortar-Extruir3 (cut, up to next)
    with BuildSketch(Plane(origin=(0, 0, 0), x_dir=(-1, 0, 0), z_dir=(0, 0, -1)), mode=Mode.PRIVATE) as cortar_extruir3_sk1:
        with Locations((-0.083817915, 23.266470302)):
            Rectangle(CROQUIS4_W, CROQUIS4_H)
    cortar_extruir3_tool1 = extrude(cortar_extruir3_sk1.sketch, amount=-CORTAR_EXTRUIR3_REACH, mode=Mode.PRIVATE) & part.part
    # Croquis4 → Cortar-Extruir3 (cut, up to next)
    with BuildSketch(Plane(origin=(0, 0, 0), x_dir=(-1, 0, 0), z_dir=(0, 0, -1)), mode=Mode.PRIVATE) as cortar_extruir3_sk2:
        with Locations((-9.583817915, -14.664456233)):
            Rectangle(CROQUIS4_W_2, CROQUIS4_H_2)
    cortar_extruir3_tool2 = extrude(cortar_extruir3_sk2.sketch, amount=-CORTAR_EXTRUIR3_REACH, mode=Mode.PRIVATE) & part.part
    # Croquis4 → Cortar-Extruir3 (cut, up to next)
    with BuildSketch(Plane(origin=(0, 0, 0), x_dir=(-1, 0, 0), z_dir=(0, 0, -1)), mode=Mode.PRIVATE) as cortar_extruir3_sk3:
        with Locations((3.416182085, -24.664456233)):
            Rectangle(CROQUIS4_W_3, CROQUIS4_H_3)
    cortar_extruir3_tool3 = extrude(cortar_extruir3_sk3.sketch, amount=-CORTAR_EXTRUIR3_REACH, mode=Mode.PRIVATE) & part.part
    add(cortar_extruir3_tool1.solids().sort_by_distance((0.083818, 23.26647, 0))[0], mode=Mode.SUBTRACT)
    add(cortar_extruir3_tool2.solids().sort_by_distance((9.583818, -14.664456, 0))[0], mode=Mode.SUBTRACT)
    add(cortar_extruir3_tool3.solids().sort_by_distance((-3.416182, -24.664456, 0))[0], mode=Mode.SUBTRACT)


solid = part.part
